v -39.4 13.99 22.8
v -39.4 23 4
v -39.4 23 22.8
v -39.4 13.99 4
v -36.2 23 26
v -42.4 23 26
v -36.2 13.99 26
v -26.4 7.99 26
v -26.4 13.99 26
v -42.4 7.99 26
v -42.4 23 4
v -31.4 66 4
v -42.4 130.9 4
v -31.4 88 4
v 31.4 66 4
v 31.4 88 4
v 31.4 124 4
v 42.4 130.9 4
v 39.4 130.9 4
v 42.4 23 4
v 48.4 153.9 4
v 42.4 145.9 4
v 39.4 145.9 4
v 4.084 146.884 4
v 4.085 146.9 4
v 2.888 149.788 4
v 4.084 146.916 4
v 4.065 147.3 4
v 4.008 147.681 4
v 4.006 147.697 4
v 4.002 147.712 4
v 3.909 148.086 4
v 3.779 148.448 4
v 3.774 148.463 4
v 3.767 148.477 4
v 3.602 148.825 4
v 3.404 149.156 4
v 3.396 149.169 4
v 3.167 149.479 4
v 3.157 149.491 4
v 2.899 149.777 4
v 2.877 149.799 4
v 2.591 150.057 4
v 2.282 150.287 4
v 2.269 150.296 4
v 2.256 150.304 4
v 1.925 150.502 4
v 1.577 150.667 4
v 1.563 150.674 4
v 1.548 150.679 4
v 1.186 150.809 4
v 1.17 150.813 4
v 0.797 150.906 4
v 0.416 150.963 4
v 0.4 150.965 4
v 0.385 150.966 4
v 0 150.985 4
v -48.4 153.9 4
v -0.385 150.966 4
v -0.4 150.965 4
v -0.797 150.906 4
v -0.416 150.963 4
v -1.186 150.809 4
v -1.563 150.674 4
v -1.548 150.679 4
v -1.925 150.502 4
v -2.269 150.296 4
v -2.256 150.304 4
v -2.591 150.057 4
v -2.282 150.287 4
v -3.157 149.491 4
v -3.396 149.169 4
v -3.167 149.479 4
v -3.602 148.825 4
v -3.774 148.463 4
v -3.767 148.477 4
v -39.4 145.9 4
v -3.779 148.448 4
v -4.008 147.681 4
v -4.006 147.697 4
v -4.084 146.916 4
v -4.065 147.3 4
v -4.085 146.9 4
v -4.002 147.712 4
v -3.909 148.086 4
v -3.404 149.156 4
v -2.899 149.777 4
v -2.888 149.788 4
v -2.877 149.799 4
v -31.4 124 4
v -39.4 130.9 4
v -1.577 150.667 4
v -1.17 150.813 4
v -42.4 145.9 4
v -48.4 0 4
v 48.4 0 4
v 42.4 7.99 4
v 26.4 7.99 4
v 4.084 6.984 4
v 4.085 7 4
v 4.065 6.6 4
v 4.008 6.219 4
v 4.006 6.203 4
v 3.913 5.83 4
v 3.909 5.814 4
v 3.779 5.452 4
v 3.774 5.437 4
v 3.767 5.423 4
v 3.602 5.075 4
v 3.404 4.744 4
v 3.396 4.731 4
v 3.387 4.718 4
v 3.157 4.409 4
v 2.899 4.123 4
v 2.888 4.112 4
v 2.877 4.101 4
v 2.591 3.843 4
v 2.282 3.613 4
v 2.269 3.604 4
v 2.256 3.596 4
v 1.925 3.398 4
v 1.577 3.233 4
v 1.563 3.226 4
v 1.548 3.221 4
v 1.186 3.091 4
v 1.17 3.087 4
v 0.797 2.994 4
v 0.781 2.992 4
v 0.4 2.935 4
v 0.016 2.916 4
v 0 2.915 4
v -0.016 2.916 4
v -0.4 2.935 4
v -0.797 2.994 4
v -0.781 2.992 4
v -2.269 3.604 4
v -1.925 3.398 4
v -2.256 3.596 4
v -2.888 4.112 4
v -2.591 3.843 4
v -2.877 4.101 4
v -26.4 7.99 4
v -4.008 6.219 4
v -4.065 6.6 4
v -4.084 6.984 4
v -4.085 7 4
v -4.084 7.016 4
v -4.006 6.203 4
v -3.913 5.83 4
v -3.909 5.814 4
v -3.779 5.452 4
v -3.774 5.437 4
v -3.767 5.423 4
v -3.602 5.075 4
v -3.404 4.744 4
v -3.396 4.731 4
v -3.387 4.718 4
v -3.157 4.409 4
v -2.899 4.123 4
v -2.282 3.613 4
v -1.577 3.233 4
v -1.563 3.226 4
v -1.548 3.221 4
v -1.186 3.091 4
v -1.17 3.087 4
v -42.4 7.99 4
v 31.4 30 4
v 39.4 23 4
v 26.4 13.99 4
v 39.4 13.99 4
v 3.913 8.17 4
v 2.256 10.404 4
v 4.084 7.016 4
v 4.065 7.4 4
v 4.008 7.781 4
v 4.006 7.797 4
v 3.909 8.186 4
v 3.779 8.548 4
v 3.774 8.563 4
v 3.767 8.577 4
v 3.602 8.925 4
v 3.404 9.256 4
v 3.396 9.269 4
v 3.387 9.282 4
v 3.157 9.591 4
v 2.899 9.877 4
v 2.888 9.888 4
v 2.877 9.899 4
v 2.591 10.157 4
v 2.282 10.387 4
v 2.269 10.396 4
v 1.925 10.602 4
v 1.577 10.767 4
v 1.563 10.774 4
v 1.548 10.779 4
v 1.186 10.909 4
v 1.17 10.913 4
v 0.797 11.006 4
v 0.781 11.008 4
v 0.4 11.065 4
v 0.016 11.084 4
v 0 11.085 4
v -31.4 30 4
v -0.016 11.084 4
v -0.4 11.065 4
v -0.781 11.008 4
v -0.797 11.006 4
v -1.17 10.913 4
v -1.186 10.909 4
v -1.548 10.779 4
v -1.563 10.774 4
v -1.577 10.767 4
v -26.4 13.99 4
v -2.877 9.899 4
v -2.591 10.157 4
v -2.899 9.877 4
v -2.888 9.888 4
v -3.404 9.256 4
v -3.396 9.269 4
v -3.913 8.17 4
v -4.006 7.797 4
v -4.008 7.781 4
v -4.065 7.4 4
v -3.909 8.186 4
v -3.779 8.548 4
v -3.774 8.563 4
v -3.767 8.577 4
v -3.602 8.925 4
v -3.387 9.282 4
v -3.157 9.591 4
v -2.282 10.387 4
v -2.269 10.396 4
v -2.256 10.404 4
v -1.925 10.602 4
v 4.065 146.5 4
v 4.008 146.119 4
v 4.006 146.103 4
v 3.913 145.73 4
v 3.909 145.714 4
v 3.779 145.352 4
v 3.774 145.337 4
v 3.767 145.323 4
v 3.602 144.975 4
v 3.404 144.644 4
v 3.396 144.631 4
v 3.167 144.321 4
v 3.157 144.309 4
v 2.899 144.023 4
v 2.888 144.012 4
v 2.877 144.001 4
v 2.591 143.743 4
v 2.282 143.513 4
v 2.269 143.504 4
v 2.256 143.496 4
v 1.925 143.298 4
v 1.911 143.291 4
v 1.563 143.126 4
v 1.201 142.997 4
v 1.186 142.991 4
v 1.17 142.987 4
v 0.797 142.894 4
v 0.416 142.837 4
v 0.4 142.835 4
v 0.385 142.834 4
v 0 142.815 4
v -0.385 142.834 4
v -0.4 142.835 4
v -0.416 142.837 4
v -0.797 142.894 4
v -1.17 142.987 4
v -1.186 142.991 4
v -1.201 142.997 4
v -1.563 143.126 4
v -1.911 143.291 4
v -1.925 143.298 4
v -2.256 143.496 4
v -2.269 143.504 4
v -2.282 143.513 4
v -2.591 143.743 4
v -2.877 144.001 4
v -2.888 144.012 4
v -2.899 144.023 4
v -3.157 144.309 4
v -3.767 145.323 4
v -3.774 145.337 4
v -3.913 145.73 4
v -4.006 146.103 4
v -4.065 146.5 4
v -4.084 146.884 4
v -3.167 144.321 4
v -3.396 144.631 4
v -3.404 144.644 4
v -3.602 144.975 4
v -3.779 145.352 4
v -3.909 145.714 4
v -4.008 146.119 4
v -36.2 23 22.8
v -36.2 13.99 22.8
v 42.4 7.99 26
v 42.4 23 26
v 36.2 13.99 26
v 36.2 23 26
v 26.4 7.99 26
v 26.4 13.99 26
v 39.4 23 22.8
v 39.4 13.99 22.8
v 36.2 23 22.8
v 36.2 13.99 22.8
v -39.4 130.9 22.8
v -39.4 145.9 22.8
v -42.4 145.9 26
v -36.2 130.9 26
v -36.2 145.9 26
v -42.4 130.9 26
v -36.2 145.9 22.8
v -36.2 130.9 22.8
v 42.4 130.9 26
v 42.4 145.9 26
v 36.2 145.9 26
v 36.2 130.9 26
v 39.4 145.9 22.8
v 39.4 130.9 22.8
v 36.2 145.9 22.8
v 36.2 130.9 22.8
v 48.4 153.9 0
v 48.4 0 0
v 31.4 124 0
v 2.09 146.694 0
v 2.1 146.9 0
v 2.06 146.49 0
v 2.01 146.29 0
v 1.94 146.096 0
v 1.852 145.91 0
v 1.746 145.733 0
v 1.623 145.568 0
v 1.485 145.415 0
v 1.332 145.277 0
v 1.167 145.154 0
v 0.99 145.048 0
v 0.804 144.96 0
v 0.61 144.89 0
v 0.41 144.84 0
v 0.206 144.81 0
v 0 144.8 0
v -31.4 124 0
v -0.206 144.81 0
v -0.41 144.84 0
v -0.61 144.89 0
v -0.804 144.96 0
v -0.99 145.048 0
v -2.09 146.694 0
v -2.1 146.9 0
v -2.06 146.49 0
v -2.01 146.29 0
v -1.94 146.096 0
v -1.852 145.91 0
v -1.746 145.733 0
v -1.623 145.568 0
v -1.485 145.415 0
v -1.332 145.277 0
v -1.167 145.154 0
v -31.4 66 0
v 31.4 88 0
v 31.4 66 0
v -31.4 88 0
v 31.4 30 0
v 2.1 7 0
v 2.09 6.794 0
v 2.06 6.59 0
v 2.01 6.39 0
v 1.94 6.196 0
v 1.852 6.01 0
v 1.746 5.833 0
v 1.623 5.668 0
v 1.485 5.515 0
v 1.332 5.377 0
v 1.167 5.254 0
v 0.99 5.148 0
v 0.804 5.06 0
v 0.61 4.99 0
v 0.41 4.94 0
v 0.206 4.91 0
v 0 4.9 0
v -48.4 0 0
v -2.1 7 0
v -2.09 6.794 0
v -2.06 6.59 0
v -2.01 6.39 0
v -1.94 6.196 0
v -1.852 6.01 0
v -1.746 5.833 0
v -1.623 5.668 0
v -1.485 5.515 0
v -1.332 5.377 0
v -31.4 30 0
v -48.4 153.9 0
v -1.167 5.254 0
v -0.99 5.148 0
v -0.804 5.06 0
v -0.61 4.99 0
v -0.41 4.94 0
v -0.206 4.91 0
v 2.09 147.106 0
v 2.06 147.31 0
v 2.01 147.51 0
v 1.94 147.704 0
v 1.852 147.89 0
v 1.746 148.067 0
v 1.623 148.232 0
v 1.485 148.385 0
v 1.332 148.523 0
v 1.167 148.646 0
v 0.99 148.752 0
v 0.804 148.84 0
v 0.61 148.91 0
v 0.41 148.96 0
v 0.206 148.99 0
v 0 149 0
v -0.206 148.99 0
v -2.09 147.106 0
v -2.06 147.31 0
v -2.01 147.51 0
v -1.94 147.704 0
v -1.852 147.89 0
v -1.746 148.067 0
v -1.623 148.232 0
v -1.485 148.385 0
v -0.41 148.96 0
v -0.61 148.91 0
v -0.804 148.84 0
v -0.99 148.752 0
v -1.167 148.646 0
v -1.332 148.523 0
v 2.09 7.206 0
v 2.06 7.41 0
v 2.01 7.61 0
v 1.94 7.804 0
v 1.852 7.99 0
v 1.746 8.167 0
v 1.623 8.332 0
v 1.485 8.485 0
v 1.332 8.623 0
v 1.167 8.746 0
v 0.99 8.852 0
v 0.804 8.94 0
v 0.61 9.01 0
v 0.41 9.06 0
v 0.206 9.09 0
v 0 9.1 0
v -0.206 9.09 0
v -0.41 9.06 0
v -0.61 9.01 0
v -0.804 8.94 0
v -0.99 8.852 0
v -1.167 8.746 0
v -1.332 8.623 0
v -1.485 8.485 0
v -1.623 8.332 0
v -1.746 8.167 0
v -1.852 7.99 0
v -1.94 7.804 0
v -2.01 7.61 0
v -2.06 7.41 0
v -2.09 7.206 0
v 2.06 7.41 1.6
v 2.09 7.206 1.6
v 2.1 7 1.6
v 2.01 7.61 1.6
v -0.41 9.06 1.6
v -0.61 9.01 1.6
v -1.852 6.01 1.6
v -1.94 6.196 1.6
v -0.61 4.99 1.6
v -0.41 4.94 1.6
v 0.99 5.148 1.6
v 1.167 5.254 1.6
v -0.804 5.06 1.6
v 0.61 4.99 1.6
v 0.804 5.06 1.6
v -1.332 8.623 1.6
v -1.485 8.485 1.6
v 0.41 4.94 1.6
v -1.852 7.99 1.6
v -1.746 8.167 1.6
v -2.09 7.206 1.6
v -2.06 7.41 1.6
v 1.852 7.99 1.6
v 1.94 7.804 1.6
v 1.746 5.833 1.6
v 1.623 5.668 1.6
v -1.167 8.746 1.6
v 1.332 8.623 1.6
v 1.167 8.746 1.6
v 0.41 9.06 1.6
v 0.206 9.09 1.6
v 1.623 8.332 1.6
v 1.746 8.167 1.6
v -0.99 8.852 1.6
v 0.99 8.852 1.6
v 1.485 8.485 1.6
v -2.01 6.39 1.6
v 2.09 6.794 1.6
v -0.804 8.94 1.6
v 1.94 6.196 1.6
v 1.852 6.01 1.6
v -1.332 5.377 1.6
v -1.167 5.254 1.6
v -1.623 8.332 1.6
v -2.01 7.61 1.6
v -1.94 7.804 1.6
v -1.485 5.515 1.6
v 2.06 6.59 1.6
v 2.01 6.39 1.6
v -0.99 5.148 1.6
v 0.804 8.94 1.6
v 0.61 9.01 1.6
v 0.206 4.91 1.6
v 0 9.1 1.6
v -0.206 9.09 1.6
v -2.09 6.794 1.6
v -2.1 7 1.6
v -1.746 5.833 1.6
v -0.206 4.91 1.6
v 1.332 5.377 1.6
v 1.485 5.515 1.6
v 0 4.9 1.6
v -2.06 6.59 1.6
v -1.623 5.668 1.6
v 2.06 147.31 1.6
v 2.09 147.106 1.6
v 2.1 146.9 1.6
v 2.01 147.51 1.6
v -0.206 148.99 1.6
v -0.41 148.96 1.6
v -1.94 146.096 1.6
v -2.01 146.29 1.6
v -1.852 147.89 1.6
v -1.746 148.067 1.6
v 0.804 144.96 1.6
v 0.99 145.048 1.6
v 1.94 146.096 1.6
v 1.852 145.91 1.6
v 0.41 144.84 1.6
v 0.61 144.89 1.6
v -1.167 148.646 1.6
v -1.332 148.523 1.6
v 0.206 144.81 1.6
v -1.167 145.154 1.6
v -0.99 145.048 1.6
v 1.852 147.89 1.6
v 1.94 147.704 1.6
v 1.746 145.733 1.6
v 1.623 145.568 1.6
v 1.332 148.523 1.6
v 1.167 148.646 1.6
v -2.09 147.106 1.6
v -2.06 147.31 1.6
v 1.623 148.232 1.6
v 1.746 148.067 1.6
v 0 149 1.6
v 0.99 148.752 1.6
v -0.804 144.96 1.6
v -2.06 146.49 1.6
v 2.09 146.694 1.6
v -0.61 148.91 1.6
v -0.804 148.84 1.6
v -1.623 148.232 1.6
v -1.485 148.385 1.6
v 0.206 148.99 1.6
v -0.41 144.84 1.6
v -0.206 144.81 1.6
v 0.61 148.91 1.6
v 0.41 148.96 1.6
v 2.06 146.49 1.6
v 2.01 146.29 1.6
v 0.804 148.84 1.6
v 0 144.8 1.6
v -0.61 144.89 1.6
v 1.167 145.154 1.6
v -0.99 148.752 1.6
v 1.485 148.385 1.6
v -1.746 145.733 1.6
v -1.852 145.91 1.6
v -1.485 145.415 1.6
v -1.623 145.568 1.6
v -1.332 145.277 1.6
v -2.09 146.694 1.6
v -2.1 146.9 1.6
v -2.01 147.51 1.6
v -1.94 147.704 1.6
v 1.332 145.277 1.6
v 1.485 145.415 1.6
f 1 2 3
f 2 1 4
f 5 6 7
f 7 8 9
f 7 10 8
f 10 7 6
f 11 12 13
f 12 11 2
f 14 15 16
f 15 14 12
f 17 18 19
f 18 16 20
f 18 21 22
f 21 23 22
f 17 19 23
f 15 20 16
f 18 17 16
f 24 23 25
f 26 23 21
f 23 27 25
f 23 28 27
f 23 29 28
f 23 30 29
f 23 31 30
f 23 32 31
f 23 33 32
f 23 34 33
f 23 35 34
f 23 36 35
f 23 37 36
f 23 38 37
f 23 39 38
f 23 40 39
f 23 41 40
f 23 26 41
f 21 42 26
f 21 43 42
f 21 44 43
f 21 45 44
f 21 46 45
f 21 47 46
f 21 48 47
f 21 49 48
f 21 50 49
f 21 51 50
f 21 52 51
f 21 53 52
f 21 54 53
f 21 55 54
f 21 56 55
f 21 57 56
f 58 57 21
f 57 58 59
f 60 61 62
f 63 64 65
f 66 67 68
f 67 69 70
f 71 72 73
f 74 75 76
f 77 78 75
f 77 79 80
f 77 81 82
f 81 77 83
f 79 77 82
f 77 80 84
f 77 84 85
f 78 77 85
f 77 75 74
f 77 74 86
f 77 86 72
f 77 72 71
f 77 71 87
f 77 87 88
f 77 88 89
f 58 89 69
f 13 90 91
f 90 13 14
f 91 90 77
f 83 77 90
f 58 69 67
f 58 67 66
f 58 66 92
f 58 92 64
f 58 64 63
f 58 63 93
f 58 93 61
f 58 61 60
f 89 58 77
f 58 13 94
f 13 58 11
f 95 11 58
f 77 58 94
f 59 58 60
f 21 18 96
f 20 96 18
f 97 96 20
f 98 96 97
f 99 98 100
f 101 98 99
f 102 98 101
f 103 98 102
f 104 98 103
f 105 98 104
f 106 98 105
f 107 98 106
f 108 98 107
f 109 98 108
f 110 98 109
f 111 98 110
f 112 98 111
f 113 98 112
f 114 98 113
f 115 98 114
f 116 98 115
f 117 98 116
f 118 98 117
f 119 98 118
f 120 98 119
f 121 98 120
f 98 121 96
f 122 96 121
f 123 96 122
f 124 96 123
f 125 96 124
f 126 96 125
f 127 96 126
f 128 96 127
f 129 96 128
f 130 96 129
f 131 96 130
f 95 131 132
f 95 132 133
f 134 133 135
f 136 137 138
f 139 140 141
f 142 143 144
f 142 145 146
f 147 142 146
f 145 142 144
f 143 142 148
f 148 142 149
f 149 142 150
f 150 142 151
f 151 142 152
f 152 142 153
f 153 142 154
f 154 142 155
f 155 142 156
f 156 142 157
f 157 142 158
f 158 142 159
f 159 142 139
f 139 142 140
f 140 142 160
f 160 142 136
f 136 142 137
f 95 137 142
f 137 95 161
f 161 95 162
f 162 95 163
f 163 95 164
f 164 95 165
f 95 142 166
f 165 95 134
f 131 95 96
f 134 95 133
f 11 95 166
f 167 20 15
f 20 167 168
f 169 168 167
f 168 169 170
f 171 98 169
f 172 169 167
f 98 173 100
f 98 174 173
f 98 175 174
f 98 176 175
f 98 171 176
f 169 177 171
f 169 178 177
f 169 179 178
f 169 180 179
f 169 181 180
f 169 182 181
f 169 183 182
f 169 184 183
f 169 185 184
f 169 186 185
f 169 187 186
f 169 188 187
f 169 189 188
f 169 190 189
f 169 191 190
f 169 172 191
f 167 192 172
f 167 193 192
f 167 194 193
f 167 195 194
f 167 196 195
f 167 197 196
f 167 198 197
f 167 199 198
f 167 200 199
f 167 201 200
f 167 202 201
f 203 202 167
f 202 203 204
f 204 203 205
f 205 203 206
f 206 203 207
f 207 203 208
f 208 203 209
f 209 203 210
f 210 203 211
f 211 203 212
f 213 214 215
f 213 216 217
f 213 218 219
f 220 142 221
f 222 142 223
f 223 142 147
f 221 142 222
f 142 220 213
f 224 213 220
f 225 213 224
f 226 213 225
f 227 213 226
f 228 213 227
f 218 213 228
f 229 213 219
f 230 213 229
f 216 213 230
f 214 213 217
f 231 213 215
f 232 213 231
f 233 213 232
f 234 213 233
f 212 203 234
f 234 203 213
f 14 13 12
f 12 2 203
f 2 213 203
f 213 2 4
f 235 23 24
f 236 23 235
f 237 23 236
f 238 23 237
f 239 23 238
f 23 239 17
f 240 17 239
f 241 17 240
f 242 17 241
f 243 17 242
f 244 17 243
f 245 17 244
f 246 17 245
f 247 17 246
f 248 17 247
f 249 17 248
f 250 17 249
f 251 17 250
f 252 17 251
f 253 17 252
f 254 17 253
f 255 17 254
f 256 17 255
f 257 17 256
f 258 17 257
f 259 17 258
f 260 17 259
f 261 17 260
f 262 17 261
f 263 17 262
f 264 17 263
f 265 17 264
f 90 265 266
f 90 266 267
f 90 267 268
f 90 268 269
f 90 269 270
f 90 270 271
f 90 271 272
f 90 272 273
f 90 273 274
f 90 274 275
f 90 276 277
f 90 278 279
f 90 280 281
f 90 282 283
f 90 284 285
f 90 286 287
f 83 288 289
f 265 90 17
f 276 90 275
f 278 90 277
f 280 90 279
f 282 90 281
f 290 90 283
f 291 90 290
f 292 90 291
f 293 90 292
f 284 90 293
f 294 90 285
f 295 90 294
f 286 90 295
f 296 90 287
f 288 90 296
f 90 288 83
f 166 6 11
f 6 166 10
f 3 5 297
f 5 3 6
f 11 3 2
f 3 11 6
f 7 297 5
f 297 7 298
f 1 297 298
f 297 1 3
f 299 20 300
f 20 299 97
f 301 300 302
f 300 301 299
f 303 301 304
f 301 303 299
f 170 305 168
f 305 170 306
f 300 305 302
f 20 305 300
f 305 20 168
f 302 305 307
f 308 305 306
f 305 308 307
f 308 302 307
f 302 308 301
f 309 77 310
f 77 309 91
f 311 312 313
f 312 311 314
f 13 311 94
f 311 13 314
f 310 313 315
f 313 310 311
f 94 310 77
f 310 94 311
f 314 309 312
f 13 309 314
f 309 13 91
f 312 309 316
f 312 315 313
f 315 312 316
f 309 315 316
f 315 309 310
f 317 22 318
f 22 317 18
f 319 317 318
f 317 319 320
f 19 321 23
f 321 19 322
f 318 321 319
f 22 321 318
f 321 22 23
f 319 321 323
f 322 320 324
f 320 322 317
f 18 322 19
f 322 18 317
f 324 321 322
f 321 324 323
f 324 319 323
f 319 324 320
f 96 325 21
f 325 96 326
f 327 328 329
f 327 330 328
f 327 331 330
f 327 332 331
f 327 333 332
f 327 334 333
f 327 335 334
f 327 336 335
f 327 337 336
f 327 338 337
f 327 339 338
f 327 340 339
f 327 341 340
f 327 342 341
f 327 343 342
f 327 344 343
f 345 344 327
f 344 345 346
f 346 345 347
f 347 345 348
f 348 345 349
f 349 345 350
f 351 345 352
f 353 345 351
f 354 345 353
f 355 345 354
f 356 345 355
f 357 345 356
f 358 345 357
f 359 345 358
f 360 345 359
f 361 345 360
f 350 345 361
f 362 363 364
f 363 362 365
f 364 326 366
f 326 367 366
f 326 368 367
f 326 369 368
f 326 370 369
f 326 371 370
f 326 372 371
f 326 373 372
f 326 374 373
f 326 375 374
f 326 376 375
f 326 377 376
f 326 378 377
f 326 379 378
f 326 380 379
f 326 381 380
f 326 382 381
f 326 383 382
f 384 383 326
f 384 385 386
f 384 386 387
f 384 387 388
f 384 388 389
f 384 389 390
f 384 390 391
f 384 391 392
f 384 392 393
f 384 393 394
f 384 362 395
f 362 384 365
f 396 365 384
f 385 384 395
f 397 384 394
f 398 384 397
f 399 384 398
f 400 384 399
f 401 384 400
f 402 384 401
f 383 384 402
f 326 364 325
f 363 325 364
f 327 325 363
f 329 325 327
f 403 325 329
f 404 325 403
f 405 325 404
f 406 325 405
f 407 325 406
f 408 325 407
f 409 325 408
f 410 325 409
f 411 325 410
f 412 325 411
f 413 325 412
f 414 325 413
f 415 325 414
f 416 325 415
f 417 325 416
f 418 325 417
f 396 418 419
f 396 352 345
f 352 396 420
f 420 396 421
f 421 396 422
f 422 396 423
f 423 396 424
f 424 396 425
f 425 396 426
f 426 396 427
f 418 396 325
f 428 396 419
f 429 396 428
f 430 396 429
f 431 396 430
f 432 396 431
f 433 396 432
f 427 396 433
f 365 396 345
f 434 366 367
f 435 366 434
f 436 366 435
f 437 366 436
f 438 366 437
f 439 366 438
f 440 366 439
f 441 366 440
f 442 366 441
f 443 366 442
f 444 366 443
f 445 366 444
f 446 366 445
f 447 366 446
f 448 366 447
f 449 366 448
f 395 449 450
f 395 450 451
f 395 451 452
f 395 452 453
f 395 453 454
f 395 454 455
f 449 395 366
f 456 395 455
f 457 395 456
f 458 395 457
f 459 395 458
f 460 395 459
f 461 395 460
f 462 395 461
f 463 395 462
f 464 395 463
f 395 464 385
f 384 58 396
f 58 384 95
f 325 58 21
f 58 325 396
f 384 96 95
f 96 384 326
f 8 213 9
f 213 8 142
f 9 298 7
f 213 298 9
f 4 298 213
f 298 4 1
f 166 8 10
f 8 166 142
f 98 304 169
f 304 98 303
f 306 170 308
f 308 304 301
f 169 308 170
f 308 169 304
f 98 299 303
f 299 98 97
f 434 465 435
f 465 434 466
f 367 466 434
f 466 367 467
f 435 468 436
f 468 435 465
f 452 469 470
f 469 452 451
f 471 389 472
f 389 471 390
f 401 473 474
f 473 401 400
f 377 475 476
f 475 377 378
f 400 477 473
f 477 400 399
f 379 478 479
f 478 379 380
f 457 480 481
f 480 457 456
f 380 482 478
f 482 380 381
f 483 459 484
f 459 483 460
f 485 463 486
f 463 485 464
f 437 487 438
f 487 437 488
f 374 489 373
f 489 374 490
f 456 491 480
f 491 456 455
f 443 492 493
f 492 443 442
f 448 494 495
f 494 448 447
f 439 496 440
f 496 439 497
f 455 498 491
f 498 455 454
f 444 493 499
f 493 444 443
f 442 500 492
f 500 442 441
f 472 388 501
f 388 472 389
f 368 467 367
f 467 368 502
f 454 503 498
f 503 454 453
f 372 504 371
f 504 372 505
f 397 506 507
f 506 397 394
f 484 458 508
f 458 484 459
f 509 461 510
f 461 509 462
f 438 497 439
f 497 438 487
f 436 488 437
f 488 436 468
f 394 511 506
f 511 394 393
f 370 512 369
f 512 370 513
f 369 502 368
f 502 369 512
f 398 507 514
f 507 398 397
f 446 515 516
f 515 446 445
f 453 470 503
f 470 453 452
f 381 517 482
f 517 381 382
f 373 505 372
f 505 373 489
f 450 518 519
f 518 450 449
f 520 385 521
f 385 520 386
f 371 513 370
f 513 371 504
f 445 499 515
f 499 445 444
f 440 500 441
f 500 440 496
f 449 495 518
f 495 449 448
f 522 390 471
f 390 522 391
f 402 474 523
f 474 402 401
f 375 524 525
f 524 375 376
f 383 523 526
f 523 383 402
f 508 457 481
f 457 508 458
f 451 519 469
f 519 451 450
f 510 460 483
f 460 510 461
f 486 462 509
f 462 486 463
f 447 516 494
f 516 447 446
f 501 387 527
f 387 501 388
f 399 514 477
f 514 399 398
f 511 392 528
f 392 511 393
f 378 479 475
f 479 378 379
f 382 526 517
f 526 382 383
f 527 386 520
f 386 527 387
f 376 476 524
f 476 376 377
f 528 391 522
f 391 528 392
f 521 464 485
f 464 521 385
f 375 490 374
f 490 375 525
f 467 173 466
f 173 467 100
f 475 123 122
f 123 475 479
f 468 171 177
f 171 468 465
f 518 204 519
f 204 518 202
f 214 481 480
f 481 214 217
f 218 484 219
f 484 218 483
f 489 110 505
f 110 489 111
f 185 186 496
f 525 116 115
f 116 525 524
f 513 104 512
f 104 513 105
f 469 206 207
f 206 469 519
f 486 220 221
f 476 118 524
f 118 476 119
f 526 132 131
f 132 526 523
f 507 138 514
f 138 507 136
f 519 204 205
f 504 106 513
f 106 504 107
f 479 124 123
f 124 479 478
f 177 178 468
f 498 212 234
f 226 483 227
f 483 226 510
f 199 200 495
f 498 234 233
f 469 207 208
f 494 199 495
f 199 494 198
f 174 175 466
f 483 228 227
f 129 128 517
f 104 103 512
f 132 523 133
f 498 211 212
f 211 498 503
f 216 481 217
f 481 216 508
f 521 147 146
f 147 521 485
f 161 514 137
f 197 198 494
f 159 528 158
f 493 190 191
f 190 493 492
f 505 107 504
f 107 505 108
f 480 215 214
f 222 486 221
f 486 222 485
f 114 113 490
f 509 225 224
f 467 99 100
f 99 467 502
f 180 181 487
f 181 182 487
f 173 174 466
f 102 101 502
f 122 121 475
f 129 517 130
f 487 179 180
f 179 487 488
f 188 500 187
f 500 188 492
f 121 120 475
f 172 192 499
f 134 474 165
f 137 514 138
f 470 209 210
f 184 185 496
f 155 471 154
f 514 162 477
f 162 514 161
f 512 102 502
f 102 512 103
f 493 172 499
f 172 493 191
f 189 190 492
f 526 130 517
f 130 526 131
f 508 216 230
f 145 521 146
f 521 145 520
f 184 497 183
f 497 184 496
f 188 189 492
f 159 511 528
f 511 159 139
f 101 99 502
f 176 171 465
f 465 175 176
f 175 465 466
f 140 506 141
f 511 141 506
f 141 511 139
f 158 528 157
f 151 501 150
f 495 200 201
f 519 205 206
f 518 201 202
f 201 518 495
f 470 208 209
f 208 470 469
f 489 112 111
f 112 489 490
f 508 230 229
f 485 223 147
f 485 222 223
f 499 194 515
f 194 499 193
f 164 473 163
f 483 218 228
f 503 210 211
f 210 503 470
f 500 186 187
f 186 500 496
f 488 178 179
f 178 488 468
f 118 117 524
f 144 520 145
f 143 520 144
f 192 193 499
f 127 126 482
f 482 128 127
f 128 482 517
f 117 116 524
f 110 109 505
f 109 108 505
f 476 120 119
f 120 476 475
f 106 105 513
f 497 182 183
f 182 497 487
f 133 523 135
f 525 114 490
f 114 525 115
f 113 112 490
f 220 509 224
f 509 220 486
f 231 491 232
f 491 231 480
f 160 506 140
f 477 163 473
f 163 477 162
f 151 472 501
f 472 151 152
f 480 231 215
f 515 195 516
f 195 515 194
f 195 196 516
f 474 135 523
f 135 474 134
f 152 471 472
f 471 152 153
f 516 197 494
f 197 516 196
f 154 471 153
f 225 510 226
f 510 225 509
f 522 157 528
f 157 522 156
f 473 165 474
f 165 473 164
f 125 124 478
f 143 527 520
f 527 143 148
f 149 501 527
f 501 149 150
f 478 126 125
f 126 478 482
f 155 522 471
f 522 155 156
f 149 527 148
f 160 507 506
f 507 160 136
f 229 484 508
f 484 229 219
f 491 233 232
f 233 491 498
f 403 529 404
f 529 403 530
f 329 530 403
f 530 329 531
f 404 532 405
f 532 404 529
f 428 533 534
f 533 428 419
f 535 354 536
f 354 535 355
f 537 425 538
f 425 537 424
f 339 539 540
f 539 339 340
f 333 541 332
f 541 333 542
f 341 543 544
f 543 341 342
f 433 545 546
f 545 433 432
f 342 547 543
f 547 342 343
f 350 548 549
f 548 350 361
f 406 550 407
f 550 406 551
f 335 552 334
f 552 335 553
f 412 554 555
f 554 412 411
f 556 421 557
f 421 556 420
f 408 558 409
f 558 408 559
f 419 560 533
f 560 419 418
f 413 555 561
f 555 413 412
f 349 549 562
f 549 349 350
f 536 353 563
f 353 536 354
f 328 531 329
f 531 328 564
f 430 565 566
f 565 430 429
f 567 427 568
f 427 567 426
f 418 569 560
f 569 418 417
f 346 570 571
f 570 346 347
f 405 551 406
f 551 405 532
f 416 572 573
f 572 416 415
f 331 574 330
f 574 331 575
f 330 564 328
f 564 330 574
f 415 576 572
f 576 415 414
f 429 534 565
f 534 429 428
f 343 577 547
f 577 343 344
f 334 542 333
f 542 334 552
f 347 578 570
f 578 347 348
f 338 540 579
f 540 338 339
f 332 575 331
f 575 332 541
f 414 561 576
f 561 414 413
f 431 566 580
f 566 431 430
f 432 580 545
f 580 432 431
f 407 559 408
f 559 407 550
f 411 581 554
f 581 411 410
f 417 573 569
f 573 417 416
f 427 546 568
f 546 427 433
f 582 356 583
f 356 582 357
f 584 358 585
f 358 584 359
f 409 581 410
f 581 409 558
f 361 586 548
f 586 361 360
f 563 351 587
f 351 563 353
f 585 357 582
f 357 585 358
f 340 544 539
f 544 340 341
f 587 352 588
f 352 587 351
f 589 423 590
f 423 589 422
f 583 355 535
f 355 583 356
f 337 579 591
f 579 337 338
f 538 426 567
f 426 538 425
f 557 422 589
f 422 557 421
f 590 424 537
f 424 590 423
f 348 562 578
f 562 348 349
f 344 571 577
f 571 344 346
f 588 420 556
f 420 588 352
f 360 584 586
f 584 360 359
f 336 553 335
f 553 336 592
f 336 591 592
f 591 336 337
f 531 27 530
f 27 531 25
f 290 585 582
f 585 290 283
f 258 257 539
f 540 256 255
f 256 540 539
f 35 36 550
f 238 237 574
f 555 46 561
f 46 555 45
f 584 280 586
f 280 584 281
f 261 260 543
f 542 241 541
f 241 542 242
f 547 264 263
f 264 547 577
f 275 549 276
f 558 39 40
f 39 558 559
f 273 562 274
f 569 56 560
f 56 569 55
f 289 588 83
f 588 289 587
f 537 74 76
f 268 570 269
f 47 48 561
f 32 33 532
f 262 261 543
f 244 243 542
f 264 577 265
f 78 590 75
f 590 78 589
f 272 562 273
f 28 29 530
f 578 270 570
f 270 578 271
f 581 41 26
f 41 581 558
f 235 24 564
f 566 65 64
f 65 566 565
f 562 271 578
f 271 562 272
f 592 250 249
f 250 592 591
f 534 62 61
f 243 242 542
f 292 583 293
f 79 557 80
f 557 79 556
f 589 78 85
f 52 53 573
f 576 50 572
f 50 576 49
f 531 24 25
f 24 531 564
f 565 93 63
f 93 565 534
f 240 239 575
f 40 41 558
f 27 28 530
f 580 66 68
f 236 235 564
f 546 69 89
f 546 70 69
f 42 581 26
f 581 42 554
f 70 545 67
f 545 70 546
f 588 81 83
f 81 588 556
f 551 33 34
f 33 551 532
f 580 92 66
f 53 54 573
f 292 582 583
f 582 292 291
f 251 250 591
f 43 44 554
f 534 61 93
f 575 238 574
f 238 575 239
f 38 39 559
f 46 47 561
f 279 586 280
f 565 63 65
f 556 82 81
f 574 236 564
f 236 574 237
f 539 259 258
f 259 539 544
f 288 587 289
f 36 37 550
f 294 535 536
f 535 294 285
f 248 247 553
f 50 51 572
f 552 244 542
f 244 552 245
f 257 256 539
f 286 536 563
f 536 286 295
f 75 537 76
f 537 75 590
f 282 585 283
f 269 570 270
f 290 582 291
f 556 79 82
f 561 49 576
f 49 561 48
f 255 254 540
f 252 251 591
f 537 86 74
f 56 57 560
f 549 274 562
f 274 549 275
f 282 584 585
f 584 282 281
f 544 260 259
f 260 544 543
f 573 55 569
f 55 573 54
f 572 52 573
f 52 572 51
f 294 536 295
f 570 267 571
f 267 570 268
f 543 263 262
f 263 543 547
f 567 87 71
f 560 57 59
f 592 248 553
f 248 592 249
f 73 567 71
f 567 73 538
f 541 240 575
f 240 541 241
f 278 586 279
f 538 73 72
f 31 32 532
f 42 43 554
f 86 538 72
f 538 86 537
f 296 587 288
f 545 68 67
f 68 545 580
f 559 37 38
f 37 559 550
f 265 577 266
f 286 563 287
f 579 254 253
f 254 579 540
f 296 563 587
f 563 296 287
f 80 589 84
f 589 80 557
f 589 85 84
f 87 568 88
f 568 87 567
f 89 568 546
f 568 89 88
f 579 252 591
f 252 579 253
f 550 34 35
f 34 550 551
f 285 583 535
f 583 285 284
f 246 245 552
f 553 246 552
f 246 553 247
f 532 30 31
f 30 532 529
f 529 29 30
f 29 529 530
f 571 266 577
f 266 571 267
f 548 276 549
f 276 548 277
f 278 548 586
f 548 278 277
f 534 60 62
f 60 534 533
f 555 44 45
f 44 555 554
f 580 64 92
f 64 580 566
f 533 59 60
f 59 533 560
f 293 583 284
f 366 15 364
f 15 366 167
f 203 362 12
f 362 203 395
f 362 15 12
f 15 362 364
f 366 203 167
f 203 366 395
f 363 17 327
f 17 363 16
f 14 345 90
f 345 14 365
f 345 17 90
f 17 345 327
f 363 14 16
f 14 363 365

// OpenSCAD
// Anker Prime Charging Station A91B2 (8-in-1, 240W) wall mount
// Device nominal size from Anker: 78.0 x 137.9 x 18.0 mm (3.07 x 5.43 x 0.71 in)
// Orientation: long axis vertical, display/outlets facing out, USB-C short edge downward.
// Design intent: open-edge cradle so side USB-A and bottom USB-C ports remain accessible.
// Print flat with wall plate on bed. PETG preferred; PLA+ acceptable indoors.

$fn = 64;

// ---- USER-TUNABLE PARAMETERS ----
device_w = 78.0;
device_h = 137.9;
device_d = 18.0;
clearance = 0.8;          // total fit allowance around device width/depth
plate_t = 4.0;
plate_margin_x = 9.0;
plate_margin_y = 8.0;
rail_wall = 3.0;
front_lip = 3.2;          // amount clips overlap the front face
clip_h = 15.0;            // corner clip height along long axis
bottom_shelf_d = 6.0;     // shelf under bottom corners, leaves center USB-C area open
screw_d = 4.2;            // #8 / ~4 mm screw clearance
screw_head_d = 8.5;
screw_head_depth = 2.4;

inner_w = device_w + clearance;
inner_d = device_d + clearance;
plate_w = inner_w + 2*plate_margin_x;
plate_h = device_h + 2*plate_margin_y;

// centered X helper
module countersunk_hole(x,y){
    translate([x,y,-0.1]) cylinder(h=plate_t+0.2,d=screw_d);
    translate([x,y,plate_t-screw_head_depth]) cylinder(h=screw_head_depth+0.2,d1=screw_d,d2=screw_head_d);
}

module corner_clip(x_side=1, y0=0){
    // x_side = -1 left, +1 right
    x_inner = x_side*(inner_w/2);
    x_outer = x_side*(inner_w/2 + rail_wall);
    x0 = (x_side<0) ? x_outer : x_inner;
    // side wall
    translate([x0, y0, plate_t])
        cube([rail_wall, clip_h, inner_d + front_lip]);
    // front retaining lip only at corner, leaving the side largely open
    lip_x0 = (x_side<0) ? x_outer : (inner_w/2 - front_lip);
    translate([lip_x0, y0, plate_t + inner_d])
        cube([rail_wall + front_lip, clip_h, front_lip]);
}

module bottom_corner_shelf(x_side=1){
    // short ledge at lower corner only; center remains open for USB-C ports
    shelf_w = 16.0;
    x0 = (x_side<0) ? (-inner_w/2-rail_wall) : (inner_w/2 + rail_wall - shelf_w);
    translate([x0, plate_margin_y-0.01, plate_t])
        cube([shelf_w, bottom_shelf_d, inner_d + front_lip]);
}

module mount(){
    difference(){
        union(){
            // wall plate
            translate([-plate_w/2,0,0]) cube([plate_w,plate_h,plate_t]);

            // lower corner clips
            corner_clip(-1, plate_margin_y);
            corner_clip( 1, plate_margin_y);
            bottom_corner_shelf(-1);
            bottom_corner_shelf( 1);

            // upper corner clips
            corner_clip(-1, plate_margin_y + device_h - clip_h);
            corner_clip( 1, plate_margin_y + device_h - clip_h);
        }

        // screw holes, outside device footprint so device can stay installed
        countersunk_hole(0, plate_margin_y/2 + 3.0);
        countersunk_hole(0, plate_h - plate_margin_y/2 - 3.0);

        // large ventilation / weight-relief windows behind device
        translate([-inner_w/2+8, plate_margin_y+22, -0.1])
            cube([inner_w-16, 36, plate_t+0.2]);
        translate([-inner_w/2+8, plate_margin_y+80, -0.1])
            cube([inner_w-16, 36, plate_t+0.2]);
    }
}

mount();
